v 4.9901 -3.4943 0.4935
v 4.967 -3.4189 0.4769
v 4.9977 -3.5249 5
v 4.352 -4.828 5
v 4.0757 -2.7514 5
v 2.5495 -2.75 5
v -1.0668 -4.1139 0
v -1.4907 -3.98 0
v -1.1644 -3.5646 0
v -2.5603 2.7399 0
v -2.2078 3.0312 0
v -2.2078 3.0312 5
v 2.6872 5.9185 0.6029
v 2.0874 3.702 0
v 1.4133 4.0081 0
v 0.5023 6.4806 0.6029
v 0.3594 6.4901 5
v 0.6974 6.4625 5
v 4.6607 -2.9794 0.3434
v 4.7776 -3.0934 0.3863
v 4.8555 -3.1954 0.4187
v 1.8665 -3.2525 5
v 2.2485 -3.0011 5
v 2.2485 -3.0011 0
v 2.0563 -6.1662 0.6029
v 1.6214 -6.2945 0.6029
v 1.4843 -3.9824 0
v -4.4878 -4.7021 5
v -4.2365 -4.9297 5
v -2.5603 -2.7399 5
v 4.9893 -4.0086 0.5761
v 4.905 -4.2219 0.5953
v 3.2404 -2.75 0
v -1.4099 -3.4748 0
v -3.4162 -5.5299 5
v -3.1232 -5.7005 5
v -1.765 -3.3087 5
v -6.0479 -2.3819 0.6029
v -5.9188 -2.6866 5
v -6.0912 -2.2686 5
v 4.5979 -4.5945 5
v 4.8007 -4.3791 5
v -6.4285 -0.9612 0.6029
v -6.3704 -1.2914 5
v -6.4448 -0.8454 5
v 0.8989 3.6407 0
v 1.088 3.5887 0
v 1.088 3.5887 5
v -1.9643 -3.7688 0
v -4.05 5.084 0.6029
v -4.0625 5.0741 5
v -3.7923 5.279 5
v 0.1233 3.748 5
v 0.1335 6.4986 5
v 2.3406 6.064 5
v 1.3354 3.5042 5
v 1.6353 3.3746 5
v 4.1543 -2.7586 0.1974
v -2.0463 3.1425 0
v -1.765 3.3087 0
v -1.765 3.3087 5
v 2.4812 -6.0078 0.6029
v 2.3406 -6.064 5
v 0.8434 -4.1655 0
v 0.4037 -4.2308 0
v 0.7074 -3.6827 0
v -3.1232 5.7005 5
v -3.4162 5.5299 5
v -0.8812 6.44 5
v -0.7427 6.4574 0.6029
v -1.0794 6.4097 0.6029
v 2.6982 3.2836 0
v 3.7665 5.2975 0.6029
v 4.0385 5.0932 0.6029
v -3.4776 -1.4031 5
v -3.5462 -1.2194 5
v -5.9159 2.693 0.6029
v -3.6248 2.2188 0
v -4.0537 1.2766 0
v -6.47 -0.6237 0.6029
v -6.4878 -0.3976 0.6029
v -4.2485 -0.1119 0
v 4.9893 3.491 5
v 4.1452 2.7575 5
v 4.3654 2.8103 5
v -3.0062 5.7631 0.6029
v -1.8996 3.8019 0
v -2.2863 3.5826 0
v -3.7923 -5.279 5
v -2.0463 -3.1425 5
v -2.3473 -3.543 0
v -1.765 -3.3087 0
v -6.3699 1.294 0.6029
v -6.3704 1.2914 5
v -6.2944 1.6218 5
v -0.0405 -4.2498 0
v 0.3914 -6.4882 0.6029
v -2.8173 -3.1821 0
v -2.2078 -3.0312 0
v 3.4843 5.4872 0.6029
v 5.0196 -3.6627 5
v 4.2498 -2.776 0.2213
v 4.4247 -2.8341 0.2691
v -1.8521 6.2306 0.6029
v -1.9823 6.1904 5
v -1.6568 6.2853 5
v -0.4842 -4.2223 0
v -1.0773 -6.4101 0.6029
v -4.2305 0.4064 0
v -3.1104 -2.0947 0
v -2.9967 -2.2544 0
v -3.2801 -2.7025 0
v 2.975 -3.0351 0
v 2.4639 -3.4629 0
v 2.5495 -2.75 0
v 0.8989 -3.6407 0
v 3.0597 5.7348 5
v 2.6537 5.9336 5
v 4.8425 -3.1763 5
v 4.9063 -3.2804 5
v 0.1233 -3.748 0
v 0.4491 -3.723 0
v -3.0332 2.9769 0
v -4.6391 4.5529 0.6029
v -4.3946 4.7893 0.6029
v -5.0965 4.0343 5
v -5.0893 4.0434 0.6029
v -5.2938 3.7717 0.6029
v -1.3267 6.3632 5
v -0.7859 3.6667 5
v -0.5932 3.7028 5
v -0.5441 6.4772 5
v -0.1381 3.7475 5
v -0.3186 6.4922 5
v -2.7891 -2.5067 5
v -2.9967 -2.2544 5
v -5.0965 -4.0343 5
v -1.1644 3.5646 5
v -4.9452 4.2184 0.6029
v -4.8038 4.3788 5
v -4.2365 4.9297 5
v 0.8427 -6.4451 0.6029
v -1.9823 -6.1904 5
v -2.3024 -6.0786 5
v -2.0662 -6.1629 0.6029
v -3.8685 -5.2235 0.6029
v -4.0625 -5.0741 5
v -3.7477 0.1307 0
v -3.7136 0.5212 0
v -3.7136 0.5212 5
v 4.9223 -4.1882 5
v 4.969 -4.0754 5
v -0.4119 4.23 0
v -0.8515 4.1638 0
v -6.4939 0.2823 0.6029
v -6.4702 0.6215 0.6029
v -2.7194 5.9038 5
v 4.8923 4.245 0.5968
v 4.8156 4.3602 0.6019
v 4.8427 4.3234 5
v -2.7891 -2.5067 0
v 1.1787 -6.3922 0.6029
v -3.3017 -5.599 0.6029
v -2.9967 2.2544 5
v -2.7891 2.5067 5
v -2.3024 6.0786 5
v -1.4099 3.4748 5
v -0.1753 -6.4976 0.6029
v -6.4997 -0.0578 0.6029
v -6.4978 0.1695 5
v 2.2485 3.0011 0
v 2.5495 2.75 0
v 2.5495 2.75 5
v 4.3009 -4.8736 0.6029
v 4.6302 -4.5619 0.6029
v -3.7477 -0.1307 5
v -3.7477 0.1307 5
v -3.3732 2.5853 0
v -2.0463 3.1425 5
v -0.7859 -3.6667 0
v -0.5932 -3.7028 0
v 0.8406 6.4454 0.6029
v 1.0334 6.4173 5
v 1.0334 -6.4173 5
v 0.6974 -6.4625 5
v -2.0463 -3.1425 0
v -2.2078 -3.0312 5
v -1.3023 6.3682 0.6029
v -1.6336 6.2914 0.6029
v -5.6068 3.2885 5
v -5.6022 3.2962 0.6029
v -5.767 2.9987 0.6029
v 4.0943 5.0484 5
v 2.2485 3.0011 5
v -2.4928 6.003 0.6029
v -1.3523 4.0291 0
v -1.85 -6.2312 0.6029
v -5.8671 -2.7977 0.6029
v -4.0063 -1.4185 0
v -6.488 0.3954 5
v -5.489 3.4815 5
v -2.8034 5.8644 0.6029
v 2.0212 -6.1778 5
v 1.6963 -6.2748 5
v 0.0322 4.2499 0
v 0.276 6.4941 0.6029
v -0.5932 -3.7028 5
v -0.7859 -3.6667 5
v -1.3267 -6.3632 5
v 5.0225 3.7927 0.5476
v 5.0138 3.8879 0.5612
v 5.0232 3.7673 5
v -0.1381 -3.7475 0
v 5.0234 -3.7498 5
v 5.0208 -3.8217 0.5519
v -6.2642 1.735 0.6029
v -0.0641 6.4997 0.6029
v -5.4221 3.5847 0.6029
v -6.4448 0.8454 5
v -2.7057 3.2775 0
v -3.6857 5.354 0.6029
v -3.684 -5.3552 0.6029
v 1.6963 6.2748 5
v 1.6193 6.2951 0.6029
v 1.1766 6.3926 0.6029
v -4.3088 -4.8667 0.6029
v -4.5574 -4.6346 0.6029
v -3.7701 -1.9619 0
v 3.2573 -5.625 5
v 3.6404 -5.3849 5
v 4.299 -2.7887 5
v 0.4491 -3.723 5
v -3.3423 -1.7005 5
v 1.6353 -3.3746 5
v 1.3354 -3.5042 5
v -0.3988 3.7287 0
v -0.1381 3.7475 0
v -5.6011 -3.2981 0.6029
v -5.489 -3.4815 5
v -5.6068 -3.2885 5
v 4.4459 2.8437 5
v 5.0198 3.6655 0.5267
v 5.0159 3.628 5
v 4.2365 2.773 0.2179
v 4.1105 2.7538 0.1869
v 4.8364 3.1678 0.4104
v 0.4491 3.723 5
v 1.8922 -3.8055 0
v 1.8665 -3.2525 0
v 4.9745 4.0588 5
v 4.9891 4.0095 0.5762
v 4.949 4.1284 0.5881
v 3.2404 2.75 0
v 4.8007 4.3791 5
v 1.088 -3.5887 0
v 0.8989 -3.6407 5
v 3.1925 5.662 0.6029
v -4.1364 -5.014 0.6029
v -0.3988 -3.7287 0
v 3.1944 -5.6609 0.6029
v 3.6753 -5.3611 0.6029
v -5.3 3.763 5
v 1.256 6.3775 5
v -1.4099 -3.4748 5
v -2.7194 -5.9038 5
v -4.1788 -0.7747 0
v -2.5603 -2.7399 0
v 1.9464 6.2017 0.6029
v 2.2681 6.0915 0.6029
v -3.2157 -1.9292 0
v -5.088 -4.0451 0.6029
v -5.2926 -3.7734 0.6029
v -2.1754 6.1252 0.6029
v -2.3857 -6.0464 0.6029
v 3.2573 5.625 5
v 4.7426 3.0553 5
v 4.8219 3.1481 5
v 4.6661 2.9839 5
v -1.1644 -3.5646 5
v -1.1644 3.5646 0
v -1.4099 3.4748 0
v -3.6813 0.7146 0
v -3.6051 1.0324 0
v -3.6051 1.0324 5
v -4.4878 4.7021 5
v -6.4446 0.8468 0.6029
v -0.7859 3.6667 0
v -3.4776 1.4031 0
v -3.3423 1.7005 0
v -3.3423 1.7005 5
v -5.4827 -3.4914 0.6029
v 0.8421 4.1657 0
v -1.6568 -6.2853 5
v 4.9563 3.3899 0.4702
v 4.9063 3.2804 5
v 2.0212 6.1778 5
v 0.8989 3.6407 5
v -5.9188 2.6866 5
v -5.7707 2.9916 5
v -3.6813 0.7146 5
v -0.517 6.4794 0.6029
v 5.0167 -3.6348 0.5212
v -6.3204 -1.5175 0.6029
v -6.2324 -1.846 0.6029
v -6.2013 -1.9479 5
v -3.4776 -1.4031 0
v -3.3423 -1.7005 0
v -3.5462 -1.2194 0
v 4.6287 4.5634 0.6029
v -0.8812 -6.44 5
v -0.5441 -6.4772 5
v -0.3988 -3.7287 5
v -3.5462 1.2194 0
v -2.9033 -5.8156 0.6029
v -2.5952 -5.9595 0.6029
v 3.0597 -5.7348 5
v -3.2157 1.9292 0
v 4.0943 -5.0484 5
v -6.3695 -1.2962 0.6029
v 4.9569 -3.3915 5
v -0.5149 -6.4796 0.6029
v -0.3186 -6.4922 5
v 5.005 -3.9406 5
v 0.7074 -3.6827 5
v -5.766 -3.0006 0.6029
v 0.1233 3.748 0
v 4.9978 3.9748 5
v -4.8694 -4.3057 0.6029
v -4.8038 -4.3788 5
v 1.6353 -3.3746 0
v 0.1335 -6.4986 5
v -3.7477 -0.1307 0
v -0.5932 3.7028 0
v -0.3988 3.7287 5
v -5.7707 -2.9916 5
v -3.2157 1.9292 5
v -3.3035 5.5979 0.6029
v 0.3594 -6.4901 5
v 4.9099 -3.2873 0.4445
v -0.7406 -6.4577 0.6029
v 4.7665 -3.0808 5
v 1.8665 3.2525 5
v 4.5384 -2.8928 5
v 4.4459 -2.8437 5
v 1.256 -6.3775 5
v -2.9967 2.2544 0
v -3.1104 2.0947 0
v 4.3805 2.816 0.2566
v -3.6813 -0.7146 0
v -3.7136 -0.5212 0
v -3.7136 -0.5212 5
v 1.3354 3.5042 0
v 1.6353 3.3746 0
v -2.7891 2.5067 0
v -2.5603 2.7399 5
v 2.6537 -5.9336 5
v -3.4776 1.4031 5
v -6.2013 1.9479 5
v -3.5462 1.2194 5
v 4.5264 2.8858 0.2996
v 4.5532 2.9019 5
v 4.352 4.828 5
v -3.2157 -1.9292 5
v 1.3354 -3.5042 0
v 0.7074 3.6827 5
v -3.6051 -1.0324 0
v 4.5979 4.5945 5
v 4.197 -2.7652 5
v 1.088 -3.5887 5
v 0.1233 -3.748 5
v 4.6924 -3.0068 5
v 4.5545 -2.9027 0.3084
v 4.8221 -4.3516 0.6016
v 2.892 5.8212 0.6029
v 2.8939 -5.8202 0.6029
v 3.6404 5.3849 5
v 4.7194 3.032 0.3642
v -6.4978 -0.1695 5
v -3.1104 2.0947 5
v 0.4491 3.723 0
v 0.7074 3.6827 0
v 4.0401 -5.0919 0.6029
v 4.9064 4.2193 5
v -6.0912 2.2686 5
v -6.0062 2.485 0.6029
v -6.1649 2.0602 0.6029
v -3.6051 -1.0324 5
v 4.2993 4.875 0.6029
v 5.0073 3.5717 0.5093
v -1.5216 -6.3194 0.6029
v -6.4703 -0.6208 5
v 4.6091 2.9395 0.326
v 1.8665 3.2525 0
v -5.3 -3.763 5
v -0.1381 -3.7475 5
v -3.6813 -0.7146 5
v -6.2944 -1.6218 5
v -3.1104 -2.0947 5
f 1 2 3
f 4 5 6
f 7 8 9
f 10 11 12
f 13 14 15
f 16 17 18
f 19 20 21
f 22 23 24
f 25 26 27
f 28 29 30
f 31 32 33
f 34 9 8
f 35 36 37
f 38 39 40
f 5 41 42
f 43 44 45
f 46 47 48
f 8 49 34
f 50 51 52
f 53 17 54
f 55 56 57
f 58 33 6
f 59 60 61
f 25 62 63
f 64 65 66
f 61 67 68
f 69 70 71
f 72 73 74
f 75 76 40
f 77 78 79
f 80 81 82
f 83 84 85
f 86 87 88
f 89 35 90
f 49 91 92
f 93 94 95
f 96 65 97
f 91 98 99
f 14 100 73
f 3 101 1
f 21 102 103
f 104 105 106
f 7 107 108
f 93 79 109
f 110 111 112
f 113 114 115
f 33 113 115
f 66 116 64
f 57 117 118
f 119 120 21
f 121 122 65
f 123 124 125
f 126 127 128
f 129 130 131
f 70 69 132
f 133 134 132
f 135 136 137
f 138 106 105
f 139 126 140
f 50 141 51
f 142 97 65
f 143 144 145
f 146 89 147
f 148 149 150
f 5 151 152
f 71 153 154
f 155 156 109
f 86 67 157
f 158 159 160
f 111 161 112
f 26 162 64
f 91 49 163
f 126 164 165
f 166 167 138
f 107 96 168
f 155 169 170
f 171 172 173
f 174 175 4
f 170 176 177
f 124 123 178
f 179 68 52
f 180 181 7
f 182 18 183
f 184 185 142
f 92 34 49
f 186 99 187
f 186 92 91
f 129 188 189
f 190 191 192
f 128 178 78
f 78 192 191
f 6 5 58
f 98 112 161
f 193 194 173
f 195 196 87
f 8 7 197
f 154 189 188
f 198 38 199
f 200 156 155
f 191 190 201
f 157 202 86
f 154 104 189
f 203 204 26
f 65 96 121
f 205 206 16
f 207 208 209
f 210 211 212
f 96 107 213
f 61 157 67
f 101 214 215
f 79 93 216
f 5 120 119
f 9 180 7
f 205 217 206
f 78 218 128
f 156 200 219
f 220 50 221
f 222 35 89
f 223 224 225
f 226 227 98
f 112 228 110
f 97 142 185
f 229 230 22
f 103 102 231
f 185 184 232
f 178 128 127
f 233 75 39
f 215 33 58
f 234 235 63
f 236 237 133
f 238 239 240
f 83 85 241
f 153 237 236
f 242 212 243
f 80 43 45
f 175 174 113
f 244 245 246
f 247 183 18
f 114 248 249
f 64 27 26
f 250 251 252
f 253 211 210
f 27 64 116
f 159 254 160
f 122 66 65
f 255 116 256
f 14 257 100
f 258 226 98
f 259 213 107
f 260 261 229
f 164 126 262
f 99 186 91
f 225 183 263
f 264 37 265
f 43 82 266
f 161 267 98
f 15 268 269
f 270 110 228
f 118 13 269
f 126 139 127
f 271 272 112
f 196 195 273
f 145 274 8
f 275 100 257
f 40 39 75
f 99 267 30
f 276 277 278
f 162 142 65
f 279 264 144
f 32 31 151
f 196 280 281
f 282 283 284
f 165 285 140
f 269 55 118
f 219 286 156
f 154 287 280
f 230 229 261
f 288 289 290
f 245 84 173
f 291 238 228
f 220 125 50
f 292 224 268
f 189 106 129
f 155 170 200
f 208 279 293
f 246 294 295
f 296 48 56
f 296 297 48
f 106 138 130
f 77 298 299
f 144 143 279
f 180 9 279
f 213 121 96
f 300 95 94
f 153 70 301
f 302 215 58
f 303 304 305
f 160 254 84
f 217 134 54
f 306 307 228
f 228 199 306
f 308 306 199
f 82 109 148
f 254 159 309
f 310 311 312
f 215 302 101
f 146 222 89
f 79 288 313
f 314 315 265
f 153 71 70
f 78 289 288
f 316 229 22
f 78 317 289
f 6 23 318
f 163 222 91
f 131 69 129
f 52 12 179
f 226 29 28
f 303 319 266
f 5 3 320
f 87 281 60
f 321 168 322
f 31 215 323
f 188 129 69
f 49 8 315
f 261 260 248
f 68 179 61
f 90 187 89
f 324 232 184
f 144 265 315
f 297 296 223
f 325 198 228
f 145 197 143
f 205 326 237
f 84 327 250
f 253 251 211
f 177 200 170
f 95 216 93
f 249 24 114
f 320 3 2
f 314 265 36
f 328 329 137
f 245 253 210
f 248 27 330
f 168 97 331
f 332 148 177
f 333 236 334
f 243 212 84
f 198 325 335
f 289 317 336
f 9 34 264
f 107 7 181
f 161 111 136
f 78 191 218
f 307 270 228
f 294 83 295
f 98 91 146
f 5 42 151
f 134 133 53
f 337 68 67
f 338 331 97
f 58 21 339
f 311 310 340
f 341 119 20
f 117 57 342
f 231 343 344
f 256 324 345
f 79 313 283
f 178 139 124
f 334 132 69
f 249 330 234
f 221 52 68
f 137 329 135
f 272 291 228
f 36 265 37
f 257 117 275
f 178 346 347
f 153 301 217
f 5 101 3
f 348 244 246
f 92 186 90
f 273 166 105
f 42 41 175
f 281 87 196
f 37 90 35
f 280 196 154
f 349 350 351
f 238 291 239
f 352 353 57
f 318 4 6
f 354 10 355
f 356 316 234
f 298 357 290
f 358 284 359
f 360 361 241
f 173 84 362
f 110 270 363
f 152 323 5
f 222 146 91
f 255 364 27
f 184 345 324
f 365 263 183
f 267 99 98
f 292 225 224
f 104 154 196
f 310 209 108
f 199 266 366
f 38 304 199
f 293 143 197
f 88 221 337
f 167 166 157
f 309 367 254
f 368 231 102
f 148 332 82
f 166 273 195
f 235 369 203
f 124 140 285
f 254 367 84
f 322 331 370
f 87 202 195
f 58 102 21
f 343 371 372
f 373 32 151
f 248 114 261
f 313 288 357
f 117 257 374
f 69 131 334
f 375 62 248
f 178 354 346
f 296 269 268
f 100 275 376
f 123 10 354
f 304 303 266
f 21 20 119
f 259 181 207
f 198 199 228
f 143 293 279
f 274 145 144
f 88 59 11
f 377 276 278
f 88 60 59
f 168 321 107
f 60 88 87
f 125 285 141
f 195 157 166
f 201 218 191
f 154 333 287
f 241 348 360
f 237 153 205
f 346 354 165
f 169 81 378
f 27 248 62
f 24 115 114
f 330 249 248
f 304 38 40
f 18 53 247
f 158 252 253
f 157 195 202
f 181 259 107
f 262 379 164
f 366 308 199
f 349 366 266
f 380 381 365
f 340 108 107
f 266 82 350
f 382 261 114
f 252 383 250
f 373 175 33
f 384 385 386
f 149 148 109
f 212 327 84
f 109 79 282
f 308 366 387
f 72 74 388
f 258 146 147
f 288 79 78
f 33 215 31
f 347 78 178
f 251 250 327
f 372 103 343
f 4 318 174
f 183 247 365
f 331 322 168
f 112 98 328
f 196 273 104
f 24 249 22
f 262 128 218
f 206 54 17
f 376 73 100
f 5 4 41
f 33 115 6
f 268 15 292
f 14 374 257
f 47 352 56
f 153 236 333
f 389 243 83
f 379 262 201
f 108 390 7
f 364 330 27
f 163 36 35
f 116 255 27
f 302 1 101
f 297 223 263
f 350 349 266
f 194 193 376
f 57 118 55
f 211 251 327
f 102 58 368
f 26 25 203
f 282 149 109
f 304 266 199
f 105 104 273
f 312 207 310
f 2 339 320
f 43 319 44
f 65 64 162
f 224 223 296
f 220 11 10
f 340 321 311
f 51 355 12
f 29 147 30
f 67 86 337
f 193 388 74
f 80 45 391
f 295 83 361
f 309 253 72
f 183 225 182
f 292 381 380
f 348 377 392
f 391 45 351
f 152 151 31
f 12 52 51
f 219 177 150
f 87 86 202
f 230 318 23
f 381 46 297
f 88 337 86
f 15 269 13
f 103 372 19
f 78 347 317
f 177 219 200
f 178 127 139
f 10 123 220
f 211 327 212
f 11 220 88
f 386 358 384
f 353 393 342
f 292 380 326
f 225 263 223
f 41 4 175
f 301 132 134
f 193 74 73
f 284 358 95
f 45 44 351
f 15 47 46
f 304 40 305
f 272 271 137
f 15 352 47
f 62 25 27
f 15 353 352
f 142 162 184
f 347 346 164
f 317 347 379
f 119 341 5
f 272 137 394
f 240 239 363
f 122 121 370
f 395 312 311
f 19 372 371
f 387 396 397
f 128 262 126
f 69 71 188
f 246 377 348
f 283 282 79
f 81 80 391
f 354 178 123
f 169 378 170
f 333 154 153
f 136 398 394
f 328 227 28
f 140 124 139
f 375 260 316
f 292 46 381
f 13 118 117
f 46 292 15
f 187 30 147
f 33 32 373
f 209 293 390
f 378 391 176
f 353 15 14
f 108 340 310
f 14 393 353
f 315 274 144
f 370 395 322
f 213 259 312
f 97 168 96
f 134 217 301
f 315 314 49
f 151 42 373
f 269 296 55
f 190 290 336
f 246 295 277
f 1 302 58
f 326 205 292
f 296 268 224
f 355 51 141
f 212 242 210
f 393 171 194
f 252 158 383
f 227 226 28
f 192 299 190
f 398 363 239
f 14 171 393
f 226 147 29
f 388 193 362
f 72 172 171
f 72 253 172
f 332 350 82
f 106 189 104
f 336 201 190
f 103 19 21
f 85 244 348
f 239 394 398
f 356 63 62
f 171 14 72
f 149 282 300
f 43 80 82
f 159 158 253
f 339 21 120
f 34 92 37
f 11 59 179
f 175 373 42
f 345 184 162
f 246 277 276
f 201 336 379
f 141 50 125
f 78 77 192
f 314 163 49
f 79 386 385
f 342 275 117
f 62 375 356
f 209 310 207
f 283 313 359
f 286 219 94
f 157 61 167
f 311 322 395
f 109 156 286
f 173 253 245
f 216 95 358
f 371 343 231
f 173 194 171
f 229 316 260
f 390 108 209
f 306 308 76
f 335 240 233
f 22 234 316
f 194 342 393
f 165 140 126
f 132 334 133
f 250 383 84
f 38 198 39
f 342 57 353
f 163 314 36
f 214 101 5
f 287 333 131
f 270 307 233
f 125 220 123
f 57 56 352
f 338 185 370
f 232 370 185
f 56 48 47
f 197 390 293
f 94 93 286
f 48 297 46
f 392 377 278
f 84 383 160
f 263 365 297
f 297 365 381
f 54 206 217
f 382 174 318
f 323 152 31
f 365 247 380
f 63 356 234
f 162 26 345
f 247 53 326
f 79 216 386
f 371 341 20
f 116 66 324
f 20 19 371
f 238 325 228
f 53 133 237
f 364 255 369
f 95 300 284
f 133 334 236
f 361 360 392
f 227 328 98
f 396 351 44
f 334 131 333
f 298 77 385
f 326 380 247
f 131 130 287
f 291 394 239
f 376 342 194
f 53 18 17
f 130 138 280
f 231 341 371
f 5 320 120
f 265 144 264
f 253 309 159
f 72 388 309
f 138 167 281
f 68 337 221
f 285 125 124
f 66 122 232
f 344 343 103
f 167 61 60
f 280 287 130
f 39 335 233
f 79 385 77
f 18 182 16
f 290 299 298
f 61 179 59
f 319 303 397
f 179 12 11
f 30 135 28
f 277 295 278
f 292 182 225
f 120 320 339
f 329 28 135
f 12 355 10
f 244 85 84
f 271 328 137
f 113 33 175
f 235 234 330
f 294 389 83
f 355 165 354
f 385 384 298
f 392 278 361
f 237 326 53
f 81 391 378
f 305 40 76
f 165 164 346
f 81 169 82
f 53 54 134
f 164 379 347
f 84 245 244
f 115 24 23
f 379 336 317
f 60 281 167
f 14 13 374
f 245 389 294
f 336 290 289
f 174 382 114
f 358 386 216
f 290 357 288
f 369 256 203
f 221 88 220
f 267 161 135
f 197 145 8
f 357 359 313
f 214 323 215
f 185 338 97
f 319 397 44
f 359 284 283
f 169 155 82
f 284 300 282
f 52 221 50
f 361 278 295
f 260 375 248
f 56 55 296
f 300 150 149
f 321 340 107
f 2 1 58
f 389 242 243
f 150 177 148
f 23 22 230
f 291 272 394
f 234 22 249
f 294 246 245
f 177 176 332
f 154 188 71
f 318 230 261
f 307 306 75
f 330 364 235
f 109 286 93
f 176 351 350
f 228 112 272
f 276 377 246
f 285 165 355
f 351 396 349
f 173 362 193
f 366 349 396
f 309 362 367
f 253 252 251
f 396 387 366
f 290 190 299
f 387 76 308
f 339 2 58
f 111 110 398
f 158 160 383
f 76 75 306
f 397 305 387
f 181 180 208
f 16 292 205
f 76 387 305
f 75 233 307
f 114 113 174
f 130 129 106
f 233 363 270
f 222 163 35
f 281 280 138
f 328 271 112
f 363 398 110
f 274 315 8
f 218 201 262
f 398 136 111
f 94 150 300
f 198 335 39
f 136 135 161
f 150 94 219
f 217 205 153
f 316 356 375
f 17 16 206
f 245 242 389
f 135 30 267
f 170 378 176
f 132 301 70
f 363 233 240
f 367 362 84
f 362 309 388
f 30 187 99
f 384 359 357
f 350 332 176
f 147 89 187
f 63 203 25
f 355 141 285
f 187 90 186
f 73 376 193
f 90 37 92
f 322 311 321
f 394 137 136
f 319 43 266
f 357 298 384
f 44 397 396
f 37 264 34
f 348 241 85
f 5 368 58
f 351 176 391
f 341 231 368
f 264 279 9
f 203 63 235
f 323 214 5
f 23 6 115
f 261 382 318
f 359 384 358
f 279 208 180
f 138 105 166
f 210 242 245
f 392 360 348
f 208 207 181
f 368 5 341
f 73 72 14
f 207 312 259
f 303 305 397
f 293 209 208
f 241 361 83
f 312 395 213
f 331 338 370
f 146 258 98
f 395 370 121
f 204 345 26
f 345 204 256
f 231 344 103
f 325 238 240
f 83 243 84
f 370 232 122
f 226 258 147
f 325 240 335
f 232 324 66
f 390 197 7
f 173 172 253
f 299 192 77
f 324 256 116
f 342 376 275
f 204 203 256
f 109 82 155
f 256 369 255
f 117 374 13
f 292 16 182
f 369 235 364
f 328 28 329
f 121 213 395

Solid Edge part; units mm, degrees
sketch "Sketch1" plane through (0, 0, 0) normal (0, 0, 1) x (1, 0, 0)
  circle A0 centre (0, 0) radius 6.5
  circle A1 centre (0, 0) radius 3.75
  dimension "D1" = 13
  dimension "D2" = 7.5
extrude "Protrusion1" add sketch "Sketch1" along normal blind 5
sketch "Sketch2" plane through (0, 0, 0) normal (0, 0, 1) x (1, 0, 0)
  line L0 (0, 2.75) -> (8.1337, 2.75)
  line L1 (8.1337, 2.75) -> (8.1337, -2.75)
  line L2 (8.1337, -2.75) -> (0, -2.75)
  line L3 (0, -2.75) -> (0, 2.75)
extrude "Cutout1" cut sketch "Sketch2" along normal through all
fillet "Round_1" radius 1 2 edges at (5.8896, -2.75, 2.5) (5.8896, 2.75, 2.5)
sketch "Sketch3" plane through (0, 0, 0) normal (1, 0, 0) x (0, 1, 0)
  line L0 (4.25, 0) -> (9.3955, 1.3787)
revolve "RevolvedCutout1" cut sketch "Sketch3" angle 360 about axis through (0, 0, -57) along (0, 0, 1) material side at (0, 6.8357, 0.6411)
properties material "ABS Plastic, medium impact"
